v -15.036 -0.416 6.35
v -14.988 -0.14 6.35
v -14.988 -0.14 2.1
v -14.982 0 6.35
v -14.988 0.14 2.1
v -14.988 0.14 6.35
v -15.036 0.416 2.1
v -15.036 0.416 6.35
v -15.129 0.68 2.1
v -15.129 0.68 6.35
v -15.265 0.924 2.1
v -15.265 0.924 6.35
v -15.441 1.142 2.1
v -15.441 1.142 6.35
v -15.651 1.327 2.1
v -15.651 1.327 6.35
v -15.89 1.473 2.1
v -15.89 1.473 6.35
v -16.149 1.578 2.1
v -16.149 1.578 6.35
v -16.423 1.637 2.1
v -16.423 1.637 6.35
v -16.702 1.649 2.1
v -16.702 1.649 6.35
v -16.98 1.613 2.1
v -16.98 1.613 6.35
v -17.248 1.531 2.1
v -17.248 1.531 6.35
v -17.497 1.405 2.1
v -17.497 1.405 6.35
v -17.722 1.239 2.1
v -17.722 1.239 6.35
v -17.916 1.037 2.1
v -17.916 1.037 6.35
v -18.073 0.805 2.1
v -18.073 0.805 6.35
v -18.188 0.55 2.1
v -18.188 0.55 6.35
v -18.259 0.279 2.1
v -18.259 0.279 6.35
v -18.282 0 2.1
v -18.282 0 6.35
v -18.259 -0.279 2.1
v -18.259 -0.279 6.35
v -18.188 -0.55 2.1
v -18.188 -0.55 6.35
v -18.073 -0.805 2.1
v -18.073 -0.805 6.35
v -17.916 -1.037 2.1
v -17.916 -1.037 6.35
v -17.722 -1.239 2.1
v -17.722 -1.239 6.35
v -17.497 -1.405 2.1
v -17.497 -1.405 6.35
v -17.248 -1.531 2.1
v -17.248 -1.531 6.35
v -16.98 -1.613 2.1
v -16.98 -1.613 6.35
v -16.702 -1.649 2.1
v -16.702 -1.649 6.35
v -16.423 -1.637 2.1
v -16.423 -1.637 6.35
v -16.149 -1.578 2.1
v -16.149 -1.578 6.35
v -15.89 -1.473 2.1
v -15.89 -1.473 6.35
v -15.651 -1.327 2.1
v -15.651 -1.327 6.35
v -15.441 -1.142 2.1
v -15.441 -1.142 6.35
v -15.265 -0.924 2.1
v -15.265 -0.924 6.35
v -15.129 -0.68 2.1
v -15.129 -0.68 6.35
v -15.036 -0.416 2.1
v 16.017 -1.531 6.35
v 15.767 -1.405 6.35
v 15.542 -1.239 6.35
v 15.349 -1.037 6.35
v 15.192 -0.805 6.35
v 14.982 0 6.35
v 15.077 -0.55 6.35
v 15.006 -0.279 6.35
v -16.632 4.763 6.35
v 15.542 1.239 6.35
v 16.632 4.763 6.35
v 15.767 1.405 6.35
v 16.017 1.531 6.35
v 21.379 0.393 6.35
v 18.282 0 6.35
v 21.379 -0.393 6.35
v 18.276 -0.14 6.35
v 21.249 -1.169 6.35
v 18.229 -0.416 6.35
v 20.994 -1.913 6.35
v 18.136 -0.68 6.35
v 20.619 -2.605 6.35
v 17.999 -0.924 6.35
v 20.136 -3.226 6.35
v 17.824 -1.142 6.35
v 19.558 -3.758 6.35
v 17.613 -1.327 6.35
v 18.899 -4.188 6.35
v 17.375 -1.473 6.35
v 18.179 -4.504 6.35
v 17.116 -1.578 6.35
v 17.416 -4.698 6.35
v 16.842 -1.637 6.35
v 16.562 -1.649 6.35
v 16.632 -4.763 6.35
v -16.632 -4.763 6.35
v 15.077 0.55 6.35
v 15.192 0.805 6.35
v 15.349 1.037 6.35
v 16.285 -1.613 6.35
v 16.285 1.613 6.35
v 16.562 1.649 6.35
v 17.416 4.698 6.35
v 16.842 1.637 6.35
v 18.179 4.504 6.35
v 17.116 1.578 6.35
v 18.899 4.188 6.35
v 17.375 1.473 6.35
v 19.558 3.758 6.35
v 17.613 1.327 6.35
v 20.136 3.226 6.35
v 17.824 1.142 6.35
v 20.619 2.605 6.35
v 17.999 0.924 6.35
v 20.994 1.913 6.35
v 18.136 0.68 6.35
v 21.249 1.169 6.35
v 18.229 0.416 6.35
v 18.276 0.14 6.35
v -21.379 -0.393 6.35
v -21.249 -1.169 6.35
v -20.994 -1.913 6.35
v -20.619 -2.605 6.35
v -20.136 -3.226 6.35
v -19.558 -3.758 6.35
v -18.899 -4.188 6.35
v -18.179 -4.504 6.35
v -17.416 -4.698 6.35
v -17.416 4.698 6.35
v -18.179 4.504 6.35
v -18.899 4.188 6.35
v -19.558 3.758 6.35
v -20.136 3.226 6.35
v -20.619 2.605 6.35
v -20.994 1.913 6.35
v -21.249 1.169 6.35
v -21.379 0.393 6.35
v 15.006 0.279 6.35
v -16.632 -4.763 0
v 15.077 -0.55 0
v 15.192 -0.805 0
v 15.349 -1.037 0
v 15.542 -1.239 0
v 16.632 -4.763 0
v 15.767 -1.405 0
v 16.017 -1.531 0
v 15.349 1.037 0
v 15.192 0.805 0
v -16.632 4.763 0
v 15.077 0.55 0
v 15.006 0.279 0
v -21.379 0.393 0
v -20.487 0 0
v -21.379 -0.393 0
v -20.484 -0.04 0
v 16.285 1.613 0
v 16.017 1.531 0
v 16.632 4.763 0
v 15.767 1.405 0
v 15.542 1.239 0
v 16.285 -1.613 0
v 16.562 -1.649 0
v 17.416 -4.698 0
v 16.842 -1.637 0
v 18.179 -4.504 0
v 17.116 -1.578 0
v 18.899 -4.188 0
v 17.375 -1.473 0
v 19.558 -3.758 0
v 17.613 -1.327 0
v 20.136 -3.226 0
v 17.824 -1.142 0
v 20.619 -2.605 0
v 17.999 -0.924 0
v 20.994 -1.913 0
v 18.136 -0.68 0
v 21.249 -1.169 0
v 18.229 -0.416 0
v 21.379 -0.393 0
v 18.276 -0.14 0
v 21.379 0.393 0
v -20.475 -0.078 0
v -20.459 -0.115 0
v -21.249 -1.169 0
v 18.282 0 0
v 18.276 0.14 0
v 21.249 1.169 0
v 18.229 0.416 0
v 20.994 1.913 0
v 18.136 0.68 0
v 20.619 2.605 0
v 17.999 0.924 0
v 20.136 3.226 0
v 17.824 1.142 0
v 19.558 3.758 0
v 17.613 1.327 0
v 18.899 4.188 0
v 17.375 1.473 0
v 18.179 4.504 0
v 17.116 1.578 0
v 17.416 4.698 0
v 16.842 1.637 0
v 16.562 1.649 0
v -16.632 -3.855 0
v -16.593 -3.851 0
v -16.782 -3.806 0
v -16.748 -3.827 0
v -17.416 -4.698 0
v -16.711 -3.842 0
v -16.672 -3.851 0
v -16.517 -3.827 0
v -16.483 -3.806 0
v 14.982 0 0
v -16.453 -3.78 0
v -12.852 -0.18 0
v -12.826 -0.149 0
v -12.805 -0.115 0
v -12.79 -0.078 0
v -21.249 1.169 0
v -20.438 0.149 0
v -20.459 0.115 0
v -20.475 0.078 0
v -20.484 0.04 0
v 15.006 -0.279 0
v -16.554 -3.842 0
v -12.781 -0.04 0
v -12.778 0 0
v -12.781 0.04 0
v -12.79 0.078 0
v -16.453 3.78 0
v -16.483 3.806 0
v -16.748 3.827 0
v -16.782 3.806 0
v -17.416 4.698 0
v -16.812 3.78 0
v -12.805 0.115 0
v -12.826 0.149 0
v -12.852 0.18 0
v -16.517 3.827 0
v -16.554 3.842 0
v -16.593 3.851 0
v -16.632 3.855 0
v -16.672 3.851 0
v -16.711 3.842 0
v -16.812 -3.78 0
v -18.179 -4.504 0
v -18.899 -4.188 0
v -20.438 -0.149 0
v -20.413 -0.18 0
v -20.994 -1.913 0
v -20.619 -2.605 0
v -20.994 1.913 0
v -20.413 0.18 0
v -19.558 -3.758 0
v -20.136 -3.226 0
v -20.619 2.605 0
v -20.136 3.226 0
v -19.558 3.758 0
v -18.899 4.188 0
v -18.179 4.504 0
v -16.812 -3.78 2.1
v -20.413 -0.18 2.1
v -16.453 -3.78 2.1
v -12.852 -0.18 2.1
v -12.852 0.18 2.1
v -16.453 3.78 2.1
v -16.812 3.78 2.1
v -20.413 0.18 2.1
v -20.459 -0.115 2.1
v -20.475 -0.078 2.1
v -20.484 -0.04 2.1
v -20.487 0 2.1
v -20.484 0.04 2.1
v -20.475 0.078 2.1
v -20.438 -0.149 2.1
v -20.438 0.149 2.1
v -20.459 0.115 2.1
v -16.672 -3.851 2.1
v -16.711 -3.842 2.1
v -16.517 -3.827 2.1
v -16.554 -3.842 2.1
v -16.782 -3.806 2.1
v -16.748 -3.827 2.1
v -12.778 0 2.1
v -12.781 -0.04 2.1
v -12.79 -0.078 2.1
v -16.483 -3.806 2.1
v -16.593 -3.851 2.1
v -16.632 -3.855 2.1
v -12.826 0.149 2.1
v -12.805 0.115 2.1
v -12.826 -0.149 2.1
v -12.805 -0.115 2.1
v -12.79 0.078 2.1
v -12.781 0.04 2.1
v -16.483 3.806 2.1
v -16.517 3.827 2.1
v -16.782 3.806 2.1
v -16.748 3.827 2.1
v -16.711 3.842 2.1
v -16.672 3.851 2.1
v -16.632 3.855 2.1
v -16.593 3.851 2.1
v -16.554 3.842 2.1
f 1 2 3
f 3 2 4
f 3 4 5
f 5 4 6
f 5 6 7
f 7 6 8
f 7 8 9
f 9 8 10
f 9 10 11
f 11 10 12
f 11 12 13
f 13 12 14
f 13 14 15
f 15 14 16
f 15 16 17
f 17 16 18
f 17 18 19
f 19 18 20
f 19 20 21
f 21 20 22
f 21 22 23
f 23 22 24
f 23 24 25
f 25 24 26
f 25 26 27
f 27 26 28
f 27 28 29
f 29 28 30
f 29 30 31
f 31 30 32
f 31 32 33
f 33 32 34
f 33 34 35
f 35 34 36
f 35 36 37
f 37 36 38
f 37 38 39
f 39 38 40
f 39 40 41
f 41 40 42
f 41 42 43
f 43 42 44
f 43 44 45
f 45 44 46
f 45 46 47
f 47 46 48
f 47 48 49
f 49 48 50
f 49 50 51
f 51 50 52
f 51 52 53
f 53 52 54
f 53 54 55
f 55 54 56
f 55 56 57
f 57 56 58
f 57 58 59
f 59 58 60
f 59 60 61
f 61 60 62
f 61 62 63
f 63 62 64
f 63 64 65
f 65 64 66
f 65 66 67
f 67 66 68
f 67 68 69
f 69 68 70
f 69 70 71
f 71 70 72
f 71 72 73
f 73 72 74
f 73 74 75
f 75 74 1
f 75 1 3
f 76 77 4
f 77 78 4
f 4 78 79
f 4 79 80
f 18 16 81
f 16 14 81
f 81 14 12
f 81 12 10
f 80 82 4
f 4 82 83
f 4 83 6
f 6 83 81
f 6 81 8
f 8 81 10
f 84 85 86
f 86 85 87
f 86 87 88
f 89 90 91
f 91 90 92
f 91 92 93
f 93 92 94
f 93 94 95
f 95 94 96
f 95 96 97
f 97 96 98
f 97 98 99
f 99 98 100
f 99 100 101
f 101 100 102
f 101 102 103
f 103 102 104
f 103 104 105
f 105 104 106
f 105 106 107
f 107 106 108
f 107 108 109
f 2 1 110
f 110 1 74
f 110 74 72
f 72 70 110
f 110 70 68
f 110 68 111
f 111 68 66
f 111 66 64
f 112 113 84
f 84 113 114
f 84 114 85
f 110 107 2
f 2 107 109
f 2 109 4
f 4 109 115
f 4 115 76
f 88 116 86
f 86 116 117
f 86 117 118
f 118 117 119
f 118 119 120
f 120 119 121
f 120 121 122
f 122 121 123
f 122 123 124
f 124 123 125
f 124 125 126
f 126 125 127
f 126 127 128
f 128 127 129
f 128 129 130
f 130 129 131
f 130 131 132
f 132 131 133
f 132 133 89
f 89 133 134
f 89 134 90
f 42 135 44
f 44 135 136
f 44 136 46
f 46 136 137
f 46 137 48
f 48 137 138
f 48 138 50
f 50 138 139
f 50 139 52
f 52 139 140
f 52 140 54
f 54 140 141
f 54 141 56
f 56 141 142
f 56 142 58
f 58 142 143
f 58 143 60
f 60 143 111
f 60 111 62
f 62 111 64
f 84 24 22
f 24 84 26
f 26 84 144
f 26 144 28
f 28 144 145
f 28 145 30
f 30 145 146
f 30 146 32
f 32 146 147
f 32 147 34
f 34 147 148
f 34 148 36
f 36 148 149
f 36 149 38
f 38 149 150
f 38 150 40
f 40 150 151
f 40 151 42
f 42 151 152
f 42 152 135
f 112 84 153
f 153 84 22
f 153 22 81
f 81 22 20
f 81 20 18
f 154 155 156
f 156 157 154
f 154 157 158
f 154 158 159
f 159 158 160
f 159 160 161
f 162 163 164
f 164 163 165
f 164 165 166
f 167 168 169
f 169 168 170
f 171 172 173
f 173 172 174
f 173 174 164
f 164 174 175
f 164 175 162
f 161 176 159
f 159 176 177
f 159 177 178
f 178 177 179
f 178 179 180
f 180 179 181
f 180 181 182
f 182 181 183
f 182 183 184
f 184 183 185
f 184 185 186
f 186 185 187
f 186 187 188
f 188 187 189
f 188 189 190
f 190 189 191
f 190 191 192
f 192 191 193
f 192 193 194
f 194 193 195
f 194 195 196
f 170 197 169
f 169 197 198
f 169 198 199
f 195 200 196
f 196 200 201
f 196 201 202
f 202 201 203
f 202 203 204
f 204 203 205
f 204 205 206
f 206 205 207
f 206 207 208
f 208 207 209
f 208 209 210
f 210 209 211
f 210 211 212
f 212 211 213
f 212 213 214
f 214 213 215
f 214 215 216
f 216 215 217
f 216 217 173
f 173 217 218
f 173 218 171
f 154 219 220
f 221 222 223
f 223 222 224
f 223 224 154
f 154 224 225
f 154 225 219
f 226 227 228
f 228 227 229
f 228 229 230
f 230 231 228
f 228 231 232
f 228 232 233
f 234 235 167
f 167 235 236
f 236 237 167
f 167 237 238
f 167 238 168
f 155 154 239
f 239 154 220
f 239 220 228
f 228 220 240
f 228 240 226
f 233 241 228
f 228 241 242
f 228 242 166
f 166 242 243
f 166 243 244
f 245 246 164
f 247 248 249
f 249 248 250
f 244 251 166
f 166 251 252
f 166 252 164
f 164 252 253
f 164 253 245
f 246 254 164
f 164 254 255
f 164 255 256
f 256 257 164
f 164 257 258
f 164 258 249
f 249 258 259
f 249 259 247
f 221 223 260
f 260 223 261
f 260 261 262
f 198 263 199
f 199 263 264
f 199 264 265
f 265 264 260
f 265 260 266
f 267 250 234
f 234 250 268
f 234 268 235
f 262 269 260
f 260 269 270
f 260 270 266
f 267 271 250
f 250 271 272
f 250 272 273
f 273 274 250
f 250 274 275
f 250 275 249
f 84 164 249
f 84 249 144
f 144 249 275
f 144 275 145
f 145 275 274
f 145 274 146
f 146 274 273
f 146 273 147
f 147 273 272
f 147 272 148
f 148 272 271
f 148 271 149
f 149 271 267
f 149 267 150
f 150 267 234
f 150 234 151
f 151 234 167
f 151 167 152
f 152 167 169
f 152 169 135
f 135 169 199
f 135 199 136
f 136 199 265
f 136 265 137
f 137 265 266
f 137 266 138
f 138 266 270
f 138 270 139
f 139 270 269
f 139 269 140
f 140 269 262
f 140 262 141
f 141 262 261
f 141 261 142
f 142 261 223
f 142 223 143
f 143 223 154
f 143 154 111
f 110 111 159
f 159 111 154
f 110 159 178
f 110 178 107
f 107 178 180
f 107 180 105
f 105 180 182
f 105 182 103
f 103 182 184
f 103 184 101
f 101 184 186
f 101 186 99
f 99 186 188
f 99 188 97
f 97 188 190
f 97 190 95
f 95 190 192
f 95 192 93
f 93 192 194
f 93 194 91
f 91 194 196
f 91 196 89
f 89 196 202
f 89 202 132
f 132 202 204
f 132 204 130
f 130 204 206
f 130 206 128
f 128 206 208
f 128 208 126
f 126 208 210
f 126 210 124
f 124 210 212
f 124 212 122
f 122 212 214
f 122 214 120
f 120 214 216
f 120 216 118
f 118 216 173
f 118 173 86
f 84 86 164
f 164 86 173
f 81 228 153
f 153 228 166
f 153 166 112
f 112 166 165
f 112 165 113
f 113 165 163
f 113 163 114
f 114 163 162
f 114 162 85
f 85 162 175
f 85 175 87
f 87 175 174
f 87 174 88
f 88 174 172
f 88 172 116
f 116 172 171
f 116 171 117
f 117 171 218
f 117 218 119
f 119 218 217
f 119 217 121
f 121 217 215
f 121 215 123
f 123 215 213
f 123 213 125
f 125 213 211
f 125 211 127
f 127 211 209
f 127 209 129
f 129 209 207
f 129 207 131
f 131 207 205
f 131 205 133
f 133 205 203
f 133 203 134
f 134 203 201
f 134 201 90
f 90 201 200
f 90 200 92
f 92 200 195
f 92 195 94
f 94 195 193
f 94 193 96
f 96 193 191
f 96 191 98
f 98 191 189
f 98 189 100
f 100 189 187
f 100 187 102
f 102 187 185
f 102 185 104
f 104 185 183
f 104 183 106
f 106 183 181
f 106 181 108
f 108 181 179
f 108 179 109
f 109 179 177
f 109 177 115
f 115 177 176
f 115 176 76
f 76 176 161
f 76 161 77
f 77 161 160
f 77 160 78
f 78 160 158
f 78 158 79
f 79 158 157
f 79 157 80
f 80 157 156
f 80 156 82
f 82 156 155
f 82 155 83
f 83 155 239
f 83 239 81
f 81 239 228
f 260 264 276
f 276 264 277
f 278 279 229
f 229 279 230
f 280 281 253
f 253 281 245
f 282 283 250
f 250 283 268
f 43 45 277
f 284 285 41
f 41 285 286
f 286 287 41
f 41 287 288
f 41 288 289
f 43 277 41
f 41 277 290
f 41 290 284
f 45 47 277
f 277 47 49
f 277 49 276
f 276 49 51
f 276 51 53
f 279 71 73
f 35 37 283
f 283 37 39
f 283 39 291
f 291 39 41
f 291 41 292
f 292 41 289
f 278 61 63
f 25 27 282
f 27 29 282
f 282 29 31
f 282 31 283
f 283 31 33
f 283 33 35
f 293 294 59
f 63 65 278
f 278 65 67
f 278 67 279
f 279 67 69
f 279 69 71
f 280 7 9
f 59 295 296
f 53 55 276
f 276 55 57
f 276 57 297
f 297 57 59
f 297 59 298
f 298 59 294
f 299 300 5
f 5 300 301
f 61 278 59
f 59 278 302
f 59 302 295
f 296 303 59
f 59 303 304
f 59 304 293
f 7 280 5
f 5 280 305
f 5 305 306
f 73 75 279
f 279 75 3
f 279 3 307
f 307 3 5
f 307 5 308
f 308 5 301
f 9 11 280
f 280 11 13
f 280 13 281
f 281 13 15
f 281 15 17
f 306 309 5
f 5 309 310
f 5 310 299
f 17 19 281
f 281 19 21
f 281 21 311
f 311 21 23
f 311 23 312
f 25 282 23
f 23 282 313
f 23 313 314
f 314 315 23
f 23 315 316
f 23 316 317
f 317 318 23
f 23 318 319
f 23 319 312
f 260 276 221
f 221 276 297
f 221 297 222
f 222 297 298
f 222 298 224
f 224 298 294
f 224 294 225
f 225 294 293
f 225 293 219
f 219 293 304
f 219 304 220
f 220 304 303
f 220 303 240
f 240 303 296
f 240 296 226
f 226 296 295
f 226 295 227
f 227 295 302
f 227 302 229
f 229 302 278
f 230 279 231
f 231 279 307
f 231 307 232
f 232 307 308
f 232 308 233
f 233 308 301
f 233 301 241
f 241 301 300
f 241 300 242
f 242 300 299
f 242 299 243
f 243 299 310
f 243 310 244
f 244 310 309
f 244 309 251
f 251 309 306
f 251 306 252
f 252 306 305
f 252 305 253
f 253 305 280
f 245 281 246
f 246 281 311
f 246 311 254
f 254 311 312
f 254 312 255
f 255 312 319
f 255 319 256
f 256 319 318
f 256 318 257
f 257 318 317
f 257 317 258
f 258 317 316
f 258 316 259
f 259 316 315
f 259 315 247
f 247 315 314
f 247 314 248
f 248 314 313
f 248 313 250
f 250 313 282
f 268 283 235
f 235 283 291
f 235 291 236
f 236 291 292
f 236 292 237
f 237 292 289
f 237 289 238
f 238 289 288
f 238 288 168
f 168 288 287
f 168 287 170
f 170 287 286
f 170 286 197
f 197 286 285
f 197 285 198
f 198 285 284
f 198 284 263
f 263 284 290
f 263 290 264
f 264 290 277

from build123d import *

# Parameters (mm, degrees)
SKETCH1_R           = 1.65
BOSS_EXTRUDE1_DEPTH = 6.35
CUT_EXTRUDE1_DEPTH  = 2.1
FILLET1_R           = 0.254


with BuildPart() as part:
    # Sketch1 → Boss-Extrude1 (new body)
    with BuildSketch(Plane.XY):
        with BuildLine():
            Line((-16.632351927, 4.7625), (16.632351927, 4.7625))
            ThreePointArc((16.632351927, 4.7625), (21.394851927, 0), (16.632351927, -4.7625))
            Line((16.632351927, -4.7625), (-16.632351927, -4.7625))
            ThreePointArc((-16.632351927, -4.7625), (-21.394851927, 0), (-16.632351927, 4.7625))
        make_face()
        with Locations((16.632351927, 0)):
            Circle(SKETCH1_R, mode=Mode.SUBTRACT)
        with Locations((-16.632351927, 0)):
            Circle(SKETCH1_R, mode=Mode.SUBTRACT)
    extrude(amount=BOSS_EXTRUDE1_DEPTH)

    # Sketch2 → Cut-Extrude1 (cut)
    with BuildSketch(Plane(origin=(0, 0, 0), x_dir=(-1, 0, 0), z_dir=(0, 0, -1))):
        Polygon((12.672553952, 0), (16.632351927, -3.959797975), (20.592149902, 0), (16.632351927, 3.959797975), align=None)
    extrude(amount=-CUT_EXTRUDE1_DEPTH, mode=Mode.SUBTRACT)

    # Fillet1
    fillet1_edges = [part.edges().sort_by_distance(p)[0] for p in [
        (-20.592149902, 0, 1.05),
        (-16.632351927, -3.959797975, 1.05),
        (-12.672553952, 0, 1.05),
        (-16.632351927, 3.959797975, 1.05),
    ]]
    fillet(fillet1_edges, radius=FILLET1_R)


solid = part.part
